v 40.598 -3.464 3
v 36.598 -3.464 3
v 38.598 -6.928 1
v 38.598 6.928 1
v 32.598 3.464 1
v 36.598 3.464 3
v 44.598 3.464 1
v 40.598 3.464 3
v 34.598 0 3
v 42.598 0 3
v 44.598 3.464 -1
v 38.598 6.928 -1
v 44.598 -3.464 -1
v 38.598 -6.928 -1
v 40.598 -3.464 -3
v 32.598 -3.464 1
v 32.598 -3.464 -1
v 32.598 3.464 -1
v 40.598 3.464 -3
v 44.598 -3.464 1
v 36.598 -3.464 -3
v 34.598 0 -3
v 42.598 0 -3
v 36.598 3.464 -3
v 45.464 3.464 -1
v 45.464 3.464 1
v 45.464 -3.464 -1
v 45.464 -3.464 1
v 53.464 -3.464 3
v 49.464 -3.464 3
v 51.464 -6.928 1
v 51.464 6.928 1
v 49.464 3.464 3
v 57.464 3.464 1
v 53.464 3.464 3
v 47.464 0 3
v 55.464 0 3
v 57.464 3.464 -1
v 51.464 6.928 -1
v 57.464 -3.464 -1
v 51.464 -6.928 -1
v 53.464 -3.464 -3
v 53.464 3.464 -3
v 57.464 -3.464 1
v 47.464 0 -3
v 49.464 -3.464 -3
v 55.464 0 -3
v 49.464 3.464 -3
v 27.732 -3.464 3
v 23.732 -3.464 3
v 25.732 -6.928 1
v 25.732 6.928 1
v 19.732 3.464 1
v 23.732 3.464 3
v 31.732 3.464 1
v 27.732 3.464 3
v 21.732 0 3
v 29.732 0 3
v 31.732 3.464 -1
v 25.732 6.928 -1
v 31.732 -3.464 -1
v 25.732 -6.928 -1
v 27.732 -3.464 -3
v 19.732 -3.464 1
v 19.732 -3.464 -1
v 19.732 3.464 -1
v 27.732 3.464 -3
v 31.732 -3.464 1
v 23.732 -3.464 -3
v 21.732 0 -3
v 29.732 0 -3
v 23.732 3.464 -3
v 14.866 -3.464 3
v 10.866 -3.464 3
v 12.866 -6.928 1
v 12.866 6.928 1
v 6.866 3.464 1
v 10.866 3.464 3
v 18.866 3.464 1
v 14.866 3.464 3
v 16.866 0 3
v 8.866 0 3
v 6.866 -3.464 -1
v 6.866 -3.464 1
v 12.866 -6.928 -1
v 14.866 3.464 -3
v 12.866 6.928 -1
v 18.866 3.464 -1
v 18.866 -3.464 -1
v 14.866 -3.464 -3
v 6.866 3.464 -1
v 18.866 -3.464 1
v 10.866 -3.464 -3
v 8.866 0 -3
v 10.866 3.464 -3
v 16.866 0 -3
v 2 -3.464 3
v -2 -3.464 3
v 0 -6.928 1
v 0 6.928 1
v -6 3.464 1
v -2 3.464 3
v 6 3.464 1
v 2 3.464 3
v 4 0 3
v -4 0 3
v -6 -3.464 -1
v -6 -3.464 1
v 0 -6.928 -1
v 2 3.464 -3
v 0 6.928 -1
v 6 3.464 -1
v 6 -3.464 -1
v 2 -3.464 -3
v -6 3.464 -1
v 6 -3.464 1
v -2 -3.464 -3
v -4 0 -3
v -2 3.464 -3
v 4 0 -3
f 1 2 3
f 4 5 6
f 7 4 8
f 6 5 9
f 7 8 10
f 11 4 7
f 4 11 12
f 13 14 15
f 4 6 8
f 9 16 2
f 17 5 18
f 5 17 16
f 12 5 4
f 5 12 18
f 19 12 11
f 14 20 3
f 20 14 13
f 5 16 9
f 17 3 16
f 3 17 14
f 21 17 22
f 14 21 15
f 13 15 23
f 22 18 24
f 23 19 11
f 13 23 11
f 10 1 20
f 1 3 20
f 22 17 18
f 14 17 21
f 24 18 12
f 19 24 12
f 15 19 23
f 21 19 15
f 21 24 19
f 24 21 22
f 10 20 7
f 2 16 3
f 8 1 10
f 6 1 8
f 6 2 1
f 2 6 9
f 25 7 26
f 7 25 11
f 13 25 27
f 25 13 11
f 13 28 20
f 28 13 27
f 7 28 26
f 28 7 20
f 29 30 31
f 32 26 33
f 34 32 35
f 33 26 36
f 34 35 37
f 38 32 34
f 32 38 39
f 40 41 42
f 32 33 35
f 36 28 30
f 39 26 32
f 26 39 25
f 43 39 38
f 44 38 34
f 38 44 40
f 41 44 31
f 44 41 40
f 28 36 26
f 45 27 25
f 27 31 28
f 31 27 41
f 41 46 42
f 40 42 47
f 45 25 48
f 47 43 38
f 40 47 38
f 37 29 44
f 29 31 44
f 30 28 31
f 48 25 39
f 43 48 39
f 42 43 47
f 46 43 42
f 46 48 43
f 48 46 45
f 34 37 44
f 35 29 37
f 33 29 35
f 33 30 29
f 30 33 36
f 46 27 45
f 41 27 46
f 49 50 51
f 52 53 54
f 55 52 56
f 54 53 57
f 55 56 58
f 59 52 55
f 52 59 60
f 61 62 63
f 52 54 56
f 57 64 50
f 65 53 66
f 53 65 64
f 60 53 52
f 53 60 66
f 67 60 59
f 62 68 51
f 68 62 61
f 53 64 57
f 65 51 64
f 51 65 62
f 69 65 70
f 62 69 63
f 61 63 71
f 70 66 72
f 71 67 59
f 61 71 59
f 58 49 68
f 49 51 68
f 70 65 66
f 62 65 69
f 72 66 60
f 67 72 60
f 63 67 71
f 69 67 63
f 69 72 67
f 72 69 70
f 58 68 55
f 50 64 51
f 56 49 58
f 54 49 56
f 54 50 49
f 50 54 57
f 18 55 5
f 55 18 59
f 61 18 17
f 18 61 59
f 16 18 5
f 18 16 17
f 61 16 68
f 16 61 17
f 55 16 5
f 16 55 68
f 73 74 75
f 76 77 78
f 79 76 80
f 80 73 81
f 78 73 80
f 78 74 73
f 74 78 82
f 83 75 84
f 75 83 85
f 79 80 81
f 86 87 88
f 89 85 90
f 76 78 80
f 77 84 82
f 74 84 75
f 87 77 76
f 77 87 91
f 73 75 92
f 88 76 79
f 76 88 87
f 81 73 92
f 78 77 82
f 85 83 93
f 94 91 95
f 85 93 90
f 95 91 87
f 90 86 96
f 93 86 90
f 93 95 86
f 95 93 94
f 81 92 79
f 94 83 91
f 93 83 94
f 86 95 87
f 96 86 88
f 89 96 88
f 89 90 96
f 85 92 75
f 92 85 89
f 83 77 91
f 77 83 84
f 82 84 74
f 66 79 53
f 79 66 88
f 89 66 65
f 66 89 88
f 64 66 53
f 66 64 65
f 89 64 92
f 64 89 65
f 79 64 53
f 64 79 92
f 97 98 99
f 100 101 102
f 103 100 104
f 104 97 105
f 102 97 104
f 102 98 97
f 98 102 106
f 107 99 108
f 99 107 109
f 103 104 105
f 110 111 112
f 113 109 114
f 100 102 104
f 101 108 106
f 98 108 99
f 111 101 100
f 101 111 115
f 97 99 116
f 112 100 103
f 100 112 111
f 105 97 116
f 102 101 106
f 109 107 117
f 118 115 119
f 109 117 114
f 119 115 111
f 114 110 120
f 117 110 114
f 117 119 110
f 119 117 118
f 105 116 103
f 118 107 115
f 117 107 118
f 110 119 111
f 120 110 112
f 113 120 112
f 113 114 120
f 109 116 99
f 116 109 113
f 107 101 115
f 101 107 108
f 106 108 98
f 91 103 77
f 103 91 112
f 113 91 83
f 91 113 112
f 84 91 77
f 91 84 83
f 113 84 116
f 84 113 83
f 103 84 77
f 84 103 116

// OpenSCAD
// file: gem-common.scad
angles = [for(i = [0:5]) i * (360 / 6)];

inner_poly_radius=8 * cos(60);
outer_poly_radius=8 * cos(30);
outer_poly_z=1;
inner_poly_z=3;


gap_between_gems = cos(30);
distance_to_corner = cos(30) * outer_poly_radius * 2 + gap_between_gems;


module edge_connector(angle = 0) {
    function make_point_2d(r, angle, height) = [r * sin(angle), height];
    
    points = [
        make_point_2d(outer_poly_radius, 30, outer_poly_z),
        make_point_2d(outer_poly_radius, -30, outer_poly_z),
        make_point_2d(outer_poly_radius, -30, -outer_poly_z),
        make_point_2d(outer_poly_radius, 30, -outer_poly_z),
    ];
    
    rotate([0,0,angle]) {
        translate([(distance_to_corner - gap_between_gems) / 2,0,0]){
            rotate([90, 0, 90]) {
                linear_extrude(gap_between_gems) {
                    polygon(points);
                }
            }
        }
    }
}

module move(distance, angle) {
    translate([distance * cos(angle), distance * sin(angle), 0]) {
        children();
    }
}


module corner_connector(angle=0) {
    r = 0.5;
    rotate_angle = angle + 30;
    move(outer_poly_radius + r, rotate_angle) {
        translate([0,0, -outer_poly_z]) {
            rotate([0,0,-rotate_angle]) {
                cylinder($fn=3, r=r, h=outer_poly_z * 2);
            }
        }
    }
}

module gem() {
    function make_point(r, angle, height) = [r * cos(angle), r * sin(angle), height];
    
    top_poly = [for(th = angles) make_point(inner_poly_radius, th, inner_poly_z)];
    top_outer_poly = [for(th = angles) make_point(outer_poly_radius, th + 30, outer_poly_z)];
    bottom_outer_poly = [for(th = angles) make_point(outer_poly_radius, th + 30, -outer_poly_z)];
    bottom_poly = [for(th = angles) make_point(inner_poly_radius, th, -inner_poly_z)];
 
    function rot(n, base) = (n + 1 - base) % 6 + base;
    
    faces = [
        [5, 4, 3, 2, 1, 0],
        for(i = [0:5]) [i, (i + 1) % 6, i + 6],
        for(i = [6:11]) [i, (i - 5) % 6, rot(i, 6)],
        for(i = [6:11]) [i, rot(i, 6), rot(i, 6) + 6, i + 6],
        for(i = [12:17]) [i, rot(i, 12), rot(i, 12) + 6],
        for(i = [18:23]) [i, i-6, rot(i, 18)],
        [18, 19, 20, 21, 22, 23],
    ];
    
    polyhedron(
        concat(
            top_poly,
            top_outer_poly,
            bottom_outer_poly,
            bottom_poly
        ),
        faces
    );
}
// main file
include <./gem-common.scad>

gem();
edge_connector();
move(distance_to_corner, 0) {
    gem();
    edge_connector();
    move(distance_to_corner, 0) {
        gem();
        edge_connector();
        move(distance_to_corner, 0) {
            gem();
            edge_connector();
            move(distance_to_corner, 0) {
                gem();
            }
        }
    }
}
